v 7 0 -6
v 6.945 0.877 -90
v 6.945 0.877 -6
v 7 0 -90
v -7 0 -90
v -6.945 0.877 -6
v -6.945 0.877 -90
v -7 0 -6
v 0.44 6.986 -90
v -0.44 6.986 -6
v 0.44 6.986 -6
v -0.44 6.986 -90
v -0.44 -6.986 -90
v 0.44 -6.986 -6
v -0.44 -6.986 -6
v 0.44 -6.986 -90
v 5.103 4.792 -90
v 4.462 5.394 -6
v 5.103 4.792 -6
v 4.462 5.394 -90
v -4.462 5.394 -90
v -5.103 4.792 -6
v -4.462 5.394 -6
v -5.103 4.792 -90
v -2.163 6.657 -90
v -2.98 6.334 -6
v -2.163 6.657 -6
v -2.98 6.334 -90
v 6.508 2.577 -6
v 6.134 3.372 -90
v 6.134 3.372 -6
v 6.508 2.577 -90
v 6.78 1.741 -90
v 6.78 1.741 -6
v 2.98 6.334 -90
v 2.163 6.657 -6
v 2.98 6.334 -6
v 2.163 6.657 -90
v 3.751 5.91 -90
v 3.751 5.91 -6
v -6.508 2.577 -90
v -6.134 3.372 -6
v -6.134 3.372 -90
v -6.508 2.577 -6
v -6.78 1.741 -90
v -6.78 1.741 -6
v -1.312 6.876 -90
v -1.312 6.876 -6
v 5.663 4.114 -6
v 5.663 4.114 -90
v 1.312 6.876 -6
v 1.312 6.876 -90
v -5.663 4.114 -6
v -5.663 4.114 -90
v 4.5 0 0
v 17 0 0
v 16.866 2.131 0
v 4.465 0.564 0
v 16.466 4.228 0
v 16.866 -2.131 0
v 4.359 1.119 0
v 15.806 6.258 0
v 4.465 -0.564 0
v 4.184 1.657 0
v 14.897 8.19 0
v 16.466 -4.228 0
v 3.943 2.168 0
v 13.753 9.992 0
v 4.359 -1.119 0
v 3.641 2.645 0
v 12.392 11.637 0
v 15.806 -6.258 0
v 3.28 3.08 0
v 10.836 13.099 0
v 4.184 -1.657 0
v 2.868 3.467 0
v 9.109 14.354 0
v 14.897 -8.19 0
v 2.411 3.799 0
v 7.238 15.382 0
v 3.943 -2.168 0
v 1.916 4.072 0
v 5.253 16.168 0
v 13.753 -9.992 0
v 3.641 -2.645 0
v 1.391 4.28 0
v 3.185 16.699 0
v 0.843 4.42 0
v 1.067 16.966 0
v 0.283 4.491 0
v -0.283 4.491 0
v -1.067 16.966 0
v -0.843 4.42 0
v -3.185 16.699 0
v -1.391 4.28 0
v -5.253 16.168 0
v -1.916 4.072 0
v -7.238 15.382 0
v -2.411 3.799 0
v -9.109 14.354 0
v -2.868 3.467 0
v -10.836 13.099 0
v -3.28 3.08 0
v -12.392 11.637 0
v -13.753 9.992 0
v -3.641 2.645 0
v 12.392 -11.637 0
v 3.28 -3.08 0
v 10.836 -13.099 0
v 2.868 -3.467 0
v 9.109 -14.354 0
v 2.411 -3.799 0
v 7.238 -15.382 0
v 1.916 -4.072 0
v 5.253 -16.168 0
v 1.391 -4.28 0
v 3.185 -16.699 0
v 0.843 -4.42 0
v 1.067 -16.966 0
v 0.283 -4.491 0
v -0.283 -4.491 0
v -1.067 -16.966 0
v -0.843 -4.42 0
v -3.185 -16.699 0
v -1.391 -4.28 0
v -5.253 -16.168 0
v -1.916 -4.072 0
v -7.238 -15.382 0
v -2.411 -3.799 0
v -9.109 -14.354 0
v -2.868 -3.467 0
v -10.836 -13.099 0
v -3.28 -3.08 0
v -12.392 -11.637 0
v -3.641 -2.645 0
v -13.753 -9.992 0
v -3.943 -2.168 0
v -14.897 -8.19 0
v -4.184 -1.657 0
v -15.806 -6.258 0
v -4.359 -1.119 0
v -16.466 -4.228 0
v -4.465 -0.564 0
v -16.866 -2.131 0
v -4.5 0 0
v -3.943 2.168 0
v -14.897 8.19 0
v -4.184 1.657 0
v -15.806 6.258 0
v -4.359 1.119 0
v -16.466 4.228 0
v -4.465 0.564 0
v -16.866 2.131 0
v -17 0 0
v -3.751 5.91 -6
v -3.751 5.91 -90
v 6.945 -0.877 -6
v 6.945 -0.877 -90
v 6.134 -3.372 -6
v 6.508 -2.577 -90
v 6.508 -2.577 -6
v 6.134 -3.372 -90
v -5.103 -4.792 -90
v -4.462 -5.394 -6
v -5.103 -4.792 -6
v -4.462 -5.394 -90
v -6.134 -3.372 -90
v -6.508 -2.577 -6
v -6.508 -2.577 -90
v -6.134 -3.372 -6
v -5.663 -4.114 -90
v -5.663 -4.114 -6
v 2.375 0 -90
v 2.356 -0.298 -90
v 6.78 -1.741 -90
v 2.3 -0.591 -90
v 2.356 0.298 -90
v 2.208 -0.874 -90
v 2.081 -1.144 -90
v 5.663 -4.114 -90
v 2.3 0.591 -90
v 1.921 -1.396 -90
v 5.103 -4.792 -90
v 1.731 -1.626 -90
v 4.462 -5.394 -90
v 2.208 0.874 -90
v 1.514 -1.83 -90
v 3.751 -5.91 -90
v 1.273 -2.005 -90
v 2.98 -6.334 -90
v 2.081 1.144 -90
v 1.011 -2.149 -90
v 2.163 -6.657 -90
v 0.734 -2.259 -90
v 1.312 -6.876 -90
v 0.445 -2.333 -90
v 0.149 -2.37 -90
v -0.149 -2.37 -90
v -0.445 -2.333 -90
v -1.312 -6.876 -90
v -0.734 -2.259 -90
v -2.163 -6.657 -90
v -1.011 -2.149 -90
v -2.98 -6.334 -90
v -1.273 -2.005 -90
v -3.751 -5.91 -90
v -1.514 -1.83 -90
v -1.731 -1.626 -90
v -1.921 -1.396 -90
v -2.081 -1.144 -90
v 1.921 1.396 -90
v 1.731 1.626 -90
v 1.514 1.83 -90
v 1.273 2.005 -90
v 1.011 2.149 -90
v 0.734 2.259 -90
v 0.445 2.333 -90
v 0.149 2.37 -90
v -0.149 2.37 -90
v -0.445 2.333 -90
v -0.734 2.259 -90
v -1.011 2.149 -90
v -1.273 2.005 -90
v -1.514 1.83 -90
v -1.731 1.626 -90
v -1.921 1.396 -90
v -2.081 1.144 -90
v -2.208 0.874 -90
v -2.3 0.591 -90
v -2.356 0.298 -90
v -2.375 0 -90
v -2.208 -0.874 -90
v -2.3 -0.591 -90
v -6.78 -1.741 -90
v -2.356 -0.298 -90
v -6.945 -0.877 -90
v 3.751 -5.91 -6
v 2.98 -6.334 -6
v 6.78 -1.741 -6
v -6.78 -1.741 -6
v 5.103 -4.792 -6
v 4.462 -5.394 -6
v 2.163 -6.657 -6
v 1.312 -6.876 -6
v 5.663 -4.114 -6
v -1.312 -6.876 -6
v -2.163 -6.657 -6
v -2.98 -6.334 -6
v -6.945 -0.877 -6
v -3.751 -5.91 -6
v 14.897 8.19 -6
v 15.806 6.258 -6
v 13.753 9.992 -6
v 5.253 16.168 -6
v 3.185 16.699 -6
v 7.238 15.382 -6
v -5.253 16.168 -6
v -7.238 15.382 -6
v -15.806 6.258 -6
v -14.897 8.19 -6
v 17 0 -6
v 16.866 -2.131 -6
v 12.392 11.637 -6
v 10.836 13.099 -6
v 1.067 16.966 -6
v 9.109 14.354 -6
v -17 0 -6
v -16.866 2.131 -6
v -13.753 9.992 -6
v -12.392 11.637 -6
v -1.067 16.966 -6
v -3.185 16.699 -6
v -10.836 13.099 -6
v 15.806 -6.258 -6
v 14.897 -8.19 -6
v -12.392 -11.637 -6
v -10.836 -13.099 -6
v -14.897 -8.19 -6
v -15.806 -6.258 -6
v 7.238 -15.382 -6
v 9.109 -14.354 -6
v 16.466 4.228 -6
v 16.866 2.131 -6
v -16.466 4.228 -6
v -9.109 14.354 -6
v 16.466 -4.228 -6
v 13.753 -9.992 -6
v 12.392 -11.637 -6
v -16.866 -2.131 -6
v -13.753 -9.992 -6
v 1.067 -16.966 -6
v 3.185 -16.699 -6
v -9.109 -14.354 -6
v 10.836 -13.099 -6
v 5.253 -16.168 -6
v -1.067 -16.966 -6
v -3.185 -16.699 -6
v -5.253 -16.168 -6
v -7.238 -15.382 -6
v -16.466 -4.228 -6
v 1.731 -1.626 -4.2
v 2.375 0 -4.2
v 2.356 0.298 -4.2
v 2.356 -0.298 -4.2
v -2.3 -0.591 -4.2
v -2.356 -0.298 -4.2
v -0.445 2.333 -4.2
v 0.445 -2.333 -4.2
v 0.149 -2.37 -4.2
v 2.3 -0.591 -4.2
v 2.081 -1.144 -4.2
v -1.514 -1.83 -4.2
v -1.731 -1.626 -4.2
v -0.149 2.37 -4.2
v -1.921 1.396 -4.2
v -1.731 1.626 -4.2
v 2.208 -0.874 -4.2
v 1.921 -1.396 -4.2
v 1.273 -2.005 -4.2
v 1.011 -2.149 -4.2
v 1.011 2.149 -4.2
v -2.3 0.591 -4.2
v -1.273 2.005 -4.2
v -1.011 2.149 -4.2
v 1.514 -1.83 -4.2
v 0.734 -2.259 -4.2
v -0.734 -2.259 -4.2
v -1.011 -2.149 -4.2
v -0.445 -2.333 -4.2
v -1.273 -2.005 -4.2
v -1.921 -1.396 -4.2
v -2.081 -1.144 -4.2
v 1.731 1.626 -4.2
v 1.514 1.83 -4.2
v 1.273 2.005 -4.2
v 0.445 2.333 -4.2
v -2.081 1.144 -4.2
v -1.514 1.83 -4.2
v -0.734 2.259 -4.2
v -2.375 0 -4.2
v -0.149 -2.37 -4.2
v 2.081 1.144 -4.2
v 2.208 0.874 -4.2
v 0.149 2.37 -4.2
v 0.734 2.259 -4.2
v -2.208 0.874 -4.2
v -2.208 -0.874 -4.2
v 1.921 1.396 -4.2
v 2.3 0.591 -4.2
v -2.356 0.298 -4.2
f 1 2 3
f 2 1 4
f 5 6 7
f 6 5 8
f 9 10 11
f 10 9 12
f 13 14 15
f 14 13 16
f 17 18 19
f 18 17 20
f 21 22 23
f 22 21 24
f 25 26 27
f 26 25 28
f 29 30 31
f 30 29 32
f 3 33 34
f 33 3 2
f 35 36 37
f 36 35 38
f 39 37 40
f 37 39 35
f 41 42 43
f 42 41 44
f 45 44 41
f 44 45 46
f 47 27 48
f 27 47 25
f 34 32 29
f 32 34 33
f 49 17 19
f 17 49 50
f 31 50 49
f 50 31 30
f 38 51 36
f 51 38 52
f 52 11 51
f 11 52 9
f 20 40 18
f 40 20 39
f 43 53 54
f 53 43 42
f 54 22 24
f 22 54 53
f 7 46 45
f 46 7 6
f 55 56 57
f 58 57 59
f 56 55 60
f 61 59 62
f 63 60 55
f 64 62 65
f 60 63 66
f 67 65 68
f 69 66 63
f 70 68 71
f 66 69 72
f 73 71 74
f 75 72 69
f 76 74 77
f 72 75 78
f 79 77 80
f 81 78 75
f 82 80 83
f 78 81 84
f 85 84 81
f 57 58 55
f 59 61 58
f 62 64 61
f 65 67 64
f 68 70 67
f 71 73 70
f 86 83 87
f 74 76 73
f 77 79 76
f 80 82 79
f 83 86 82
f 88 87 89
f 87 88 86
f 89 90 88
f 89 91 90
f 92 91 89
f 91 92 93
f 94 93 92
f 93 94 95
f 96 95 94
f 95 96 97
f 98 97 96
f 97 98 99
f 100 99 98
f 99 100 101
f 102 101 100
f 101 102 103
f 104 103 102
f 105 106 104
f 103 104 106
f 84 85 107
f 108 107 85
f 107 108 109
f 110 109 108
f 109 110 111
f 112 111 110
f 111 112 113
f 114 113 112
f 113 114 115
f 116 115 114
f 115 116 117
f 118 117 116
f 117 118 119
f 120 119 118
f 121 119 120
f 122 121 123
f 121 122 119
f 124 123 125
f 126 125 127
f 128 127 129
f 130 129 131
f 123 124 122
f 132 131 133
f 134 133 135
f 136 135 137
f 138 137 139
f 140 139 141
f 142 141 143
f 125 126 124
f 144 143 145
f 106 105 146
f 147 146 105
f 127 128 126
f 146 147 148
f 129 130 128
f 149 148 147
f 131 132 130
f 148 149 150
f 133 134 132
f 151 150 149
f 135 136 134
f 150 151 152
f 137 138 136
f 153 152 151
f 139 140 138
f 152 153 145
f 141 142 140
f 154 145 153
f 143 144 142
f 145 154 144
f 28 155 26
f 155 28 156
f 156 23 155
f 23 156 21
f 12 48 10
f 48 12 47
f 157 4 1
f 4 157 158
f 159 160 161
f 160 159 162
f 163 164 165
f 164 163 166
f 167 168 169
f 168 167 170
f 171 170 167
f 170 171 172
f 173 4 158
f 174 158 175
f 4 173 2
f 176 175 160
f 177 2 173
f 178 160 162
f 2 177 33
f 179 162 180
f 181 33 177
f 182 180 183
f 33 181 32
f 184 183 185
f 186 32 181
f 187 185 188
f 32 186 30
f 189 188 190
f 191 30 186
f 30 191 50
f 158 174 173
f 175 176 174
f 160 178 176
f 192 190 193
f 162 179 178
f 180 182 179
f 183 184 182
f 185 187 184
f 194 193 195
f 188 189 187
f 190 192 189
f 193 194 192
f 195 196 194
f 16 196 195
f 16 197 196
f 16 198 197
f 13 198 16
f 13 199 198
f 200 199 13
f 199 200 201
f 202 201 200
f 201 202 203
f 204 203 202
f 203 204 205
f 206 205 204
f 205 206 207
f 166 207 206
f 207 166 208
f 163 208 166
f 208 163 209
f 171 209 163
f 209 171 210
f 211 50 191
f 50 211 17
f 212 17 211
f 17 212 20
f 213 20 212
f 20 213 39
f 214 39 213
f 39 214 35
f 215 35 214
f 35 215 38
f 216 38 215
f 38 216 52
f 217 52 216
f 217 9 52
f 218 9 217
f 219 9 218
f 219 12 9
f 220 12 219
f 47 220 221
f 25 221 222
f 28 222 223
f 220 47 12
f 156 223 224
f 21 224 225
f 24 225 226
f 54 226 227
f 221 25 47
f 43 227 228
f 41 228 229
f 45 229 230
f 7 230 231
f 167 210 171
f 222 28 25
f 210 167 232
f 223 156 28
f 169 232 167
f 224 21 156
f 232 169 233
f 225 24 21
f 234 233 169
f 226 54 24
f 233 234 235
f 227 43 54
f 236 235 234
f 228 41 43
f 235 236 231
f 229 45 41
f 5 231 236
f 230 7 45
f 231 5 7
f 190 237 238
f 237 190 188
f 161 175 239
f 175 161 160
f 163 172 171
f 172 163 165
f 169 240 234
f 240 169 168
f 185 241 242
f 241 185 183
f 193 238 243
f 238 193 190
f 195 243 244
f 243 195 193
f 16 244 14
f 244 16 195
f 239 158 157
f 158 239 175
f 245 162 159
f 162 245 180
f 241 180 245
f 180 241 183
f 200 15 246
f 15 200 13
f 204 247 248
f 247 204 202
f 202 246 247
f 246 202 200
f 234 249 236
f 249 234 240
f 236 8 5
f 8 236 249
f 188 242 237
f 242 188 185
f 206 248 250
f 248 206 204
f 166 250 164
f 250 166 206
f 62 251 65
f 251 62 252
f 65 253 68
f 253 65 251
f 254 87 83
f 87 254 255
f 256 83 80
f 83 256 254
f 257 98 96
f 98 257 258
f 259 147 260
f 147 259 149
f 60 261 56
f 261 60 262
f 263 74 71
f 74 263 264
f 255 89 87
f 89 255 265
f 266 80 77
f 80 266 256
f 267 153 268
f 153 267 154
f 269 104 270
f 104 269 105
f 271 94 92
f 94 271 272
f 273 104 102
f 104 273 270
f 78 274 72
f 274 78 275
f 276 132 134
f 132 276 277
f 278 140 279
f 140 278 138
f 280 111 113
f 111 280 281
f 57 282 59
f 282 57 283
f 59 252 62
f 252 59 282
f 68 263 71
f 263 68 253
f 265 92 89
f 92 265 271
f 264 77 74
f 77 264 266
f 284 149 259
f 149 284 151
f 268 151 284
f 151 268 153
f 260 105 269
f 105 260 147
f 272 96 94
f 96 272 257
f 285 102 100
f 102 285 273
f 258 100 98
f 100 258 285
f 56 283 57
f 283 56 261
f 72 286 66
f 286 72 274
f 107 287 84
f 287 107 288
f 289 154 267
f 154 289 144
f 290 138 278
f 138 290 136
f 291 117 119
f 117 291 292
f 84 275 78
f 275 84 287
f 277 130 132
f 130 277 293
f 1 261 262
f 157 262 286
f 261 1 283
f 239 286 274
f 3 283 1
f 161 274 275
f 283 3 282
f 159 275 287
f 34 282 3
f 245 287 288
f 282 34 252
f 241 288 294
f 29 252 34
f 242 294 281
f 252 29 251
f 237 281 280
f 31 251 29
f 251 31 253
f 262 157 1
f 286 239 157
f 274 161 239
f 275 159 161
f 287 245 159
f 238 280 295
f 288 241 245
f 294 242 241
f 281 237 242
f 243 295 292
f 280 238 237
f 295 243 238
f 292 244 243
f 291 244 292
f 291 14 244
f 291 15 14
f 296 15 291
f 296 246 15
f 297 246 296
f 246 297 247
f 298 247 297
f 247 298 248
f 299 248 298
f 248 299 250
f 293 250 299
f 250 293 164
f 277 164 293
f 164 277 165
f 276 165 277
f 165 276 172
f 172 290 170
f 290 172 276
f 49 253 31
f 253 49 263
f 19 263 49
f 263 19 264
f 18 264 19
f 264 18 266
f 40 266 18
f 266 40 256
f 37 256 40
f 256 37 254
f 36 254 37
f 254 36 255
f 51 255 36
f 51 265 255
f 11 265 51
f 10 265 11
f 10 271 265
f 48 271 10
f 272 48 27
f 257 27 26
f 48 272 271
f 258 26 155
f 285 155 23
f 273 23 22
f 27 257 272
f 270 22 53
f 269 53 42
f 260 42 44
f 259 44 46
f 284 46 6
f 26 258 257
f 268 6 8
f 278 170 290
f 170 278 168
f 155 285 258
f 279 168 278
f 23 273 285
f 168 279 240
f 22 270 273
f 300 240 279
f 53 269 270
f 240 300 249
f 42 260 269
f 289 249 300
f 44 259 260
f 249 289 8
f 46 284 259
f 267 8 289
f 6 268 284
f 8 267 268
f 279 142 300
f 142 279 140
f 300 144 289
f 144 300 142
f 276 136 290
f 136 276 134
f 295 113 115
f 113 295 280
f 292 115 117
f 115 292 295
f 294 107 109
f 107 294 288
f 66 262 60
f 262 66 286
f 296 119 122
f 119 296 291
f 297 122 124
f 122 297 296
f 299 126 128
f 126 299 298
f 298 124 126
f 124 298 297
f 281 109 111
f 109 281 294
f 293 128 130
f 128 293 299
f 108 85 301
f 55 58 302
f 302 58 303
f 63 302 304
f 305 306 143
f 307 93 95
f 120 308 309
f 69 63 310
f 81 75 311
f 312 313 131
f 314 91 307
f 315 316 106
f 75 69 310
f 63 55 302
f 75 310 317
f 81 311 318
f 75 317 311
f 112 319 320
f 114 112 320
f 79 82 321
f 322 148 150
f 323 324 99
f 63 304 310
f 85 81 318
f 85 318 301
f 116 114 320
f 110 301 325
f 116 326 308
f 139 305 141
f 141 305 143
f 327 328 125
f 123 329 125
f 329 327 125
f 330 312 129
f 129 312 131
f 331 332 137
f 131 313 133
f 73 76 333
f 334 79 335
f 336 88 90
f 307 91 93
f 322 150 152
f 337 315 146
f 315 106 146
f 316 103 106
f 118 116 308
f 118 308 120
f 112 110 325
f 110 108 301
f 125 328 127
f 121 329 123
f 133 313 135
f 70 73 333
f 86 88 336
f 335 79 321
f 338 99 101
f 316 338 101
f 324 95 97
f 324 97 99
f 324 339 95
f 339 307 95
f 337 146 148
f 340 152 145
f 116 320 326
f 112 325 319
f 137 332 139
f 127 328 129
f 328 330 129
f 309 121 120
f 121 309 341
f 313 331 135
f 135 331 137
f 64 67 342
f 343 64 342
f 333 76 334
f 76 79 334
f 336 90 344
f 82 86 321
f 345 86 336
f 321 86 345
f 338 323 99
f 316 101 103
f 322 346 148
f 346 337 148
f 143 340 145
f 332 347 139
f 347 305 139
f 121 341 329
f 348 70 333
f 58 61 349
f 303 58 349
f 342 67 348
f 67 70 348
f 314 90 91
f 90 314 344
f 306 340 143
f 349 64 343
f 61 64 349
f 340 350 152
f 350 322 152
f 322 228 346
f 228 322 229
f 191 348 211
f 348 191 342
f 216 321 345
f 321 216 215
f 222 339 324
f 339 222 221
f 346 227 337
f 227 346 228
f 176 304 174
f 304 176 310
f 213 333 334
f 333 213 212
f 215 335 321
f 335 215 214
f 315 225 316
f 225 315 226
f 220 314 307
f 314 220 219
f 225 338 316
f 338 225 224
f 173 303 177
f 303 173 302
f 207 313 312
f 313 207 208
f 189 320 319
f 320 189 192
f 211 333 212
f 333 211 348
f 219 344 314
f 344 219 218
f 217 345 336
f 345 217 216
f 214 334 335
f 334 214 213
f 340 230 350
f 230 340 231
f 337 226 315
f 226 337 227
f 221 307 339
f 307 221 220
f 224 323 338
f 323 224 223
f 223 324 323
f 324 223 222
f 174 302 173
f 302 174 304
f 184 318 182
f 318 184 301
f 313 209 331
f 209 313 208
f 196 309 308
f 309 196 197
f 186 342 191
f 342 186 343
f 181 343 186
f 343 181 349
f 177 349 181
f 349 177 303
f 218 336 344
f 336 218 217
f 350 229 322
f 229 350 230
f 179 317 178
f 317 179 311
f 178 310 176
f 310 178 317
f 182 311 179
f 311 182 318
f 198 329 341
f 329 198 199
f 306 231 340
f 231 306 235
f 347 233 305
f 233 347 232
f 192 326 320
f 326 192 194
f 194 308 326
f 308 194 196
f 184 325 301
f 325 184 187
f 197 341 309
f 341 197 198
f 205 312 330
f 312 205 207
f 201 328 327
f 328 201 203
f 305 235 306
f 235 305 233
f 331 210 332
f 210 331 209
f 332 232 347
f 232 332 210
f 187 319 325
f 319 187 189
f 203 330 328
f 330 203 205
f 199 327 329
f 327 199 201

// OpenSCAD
$fn = 50;


difference() {
	union() {
		translate(v = [0, 0, -90.0000000000]) {
			cylinder(h = 90, r = 7.0000000000);
		}
		translate(v = [0, 0, -6.0000000000]) {
			cylinder(h = 6, r = 17.0000000000);
		}
	}
	union() {
		translate(v = [0, 0, 0]) {
			rotate(a = [0, 0, 0]) {
				difference() {
					union() {
						#translate(v = [0, 0, -90.0000000000]) {
							cylinder(h = 90, r = 2.2500000000);
						}
						#translate(v = [0, 0, -4.2000000000]) {
							cylinder(h = 4.2000000000, r1 = 2.3750000000, r2 = 4.5000000000);
						}
						#translate(v = [0, 0, -90.0000000000]) {
							cylinder(h = 90, r = 2.3750000000);
						}
						#translate(v = [0, 0, -90.0000000000]) {
							cylinder(h = 90, r = 2.2500000000);
						}
					}
					union();
				}
			}
		}
	}
}
